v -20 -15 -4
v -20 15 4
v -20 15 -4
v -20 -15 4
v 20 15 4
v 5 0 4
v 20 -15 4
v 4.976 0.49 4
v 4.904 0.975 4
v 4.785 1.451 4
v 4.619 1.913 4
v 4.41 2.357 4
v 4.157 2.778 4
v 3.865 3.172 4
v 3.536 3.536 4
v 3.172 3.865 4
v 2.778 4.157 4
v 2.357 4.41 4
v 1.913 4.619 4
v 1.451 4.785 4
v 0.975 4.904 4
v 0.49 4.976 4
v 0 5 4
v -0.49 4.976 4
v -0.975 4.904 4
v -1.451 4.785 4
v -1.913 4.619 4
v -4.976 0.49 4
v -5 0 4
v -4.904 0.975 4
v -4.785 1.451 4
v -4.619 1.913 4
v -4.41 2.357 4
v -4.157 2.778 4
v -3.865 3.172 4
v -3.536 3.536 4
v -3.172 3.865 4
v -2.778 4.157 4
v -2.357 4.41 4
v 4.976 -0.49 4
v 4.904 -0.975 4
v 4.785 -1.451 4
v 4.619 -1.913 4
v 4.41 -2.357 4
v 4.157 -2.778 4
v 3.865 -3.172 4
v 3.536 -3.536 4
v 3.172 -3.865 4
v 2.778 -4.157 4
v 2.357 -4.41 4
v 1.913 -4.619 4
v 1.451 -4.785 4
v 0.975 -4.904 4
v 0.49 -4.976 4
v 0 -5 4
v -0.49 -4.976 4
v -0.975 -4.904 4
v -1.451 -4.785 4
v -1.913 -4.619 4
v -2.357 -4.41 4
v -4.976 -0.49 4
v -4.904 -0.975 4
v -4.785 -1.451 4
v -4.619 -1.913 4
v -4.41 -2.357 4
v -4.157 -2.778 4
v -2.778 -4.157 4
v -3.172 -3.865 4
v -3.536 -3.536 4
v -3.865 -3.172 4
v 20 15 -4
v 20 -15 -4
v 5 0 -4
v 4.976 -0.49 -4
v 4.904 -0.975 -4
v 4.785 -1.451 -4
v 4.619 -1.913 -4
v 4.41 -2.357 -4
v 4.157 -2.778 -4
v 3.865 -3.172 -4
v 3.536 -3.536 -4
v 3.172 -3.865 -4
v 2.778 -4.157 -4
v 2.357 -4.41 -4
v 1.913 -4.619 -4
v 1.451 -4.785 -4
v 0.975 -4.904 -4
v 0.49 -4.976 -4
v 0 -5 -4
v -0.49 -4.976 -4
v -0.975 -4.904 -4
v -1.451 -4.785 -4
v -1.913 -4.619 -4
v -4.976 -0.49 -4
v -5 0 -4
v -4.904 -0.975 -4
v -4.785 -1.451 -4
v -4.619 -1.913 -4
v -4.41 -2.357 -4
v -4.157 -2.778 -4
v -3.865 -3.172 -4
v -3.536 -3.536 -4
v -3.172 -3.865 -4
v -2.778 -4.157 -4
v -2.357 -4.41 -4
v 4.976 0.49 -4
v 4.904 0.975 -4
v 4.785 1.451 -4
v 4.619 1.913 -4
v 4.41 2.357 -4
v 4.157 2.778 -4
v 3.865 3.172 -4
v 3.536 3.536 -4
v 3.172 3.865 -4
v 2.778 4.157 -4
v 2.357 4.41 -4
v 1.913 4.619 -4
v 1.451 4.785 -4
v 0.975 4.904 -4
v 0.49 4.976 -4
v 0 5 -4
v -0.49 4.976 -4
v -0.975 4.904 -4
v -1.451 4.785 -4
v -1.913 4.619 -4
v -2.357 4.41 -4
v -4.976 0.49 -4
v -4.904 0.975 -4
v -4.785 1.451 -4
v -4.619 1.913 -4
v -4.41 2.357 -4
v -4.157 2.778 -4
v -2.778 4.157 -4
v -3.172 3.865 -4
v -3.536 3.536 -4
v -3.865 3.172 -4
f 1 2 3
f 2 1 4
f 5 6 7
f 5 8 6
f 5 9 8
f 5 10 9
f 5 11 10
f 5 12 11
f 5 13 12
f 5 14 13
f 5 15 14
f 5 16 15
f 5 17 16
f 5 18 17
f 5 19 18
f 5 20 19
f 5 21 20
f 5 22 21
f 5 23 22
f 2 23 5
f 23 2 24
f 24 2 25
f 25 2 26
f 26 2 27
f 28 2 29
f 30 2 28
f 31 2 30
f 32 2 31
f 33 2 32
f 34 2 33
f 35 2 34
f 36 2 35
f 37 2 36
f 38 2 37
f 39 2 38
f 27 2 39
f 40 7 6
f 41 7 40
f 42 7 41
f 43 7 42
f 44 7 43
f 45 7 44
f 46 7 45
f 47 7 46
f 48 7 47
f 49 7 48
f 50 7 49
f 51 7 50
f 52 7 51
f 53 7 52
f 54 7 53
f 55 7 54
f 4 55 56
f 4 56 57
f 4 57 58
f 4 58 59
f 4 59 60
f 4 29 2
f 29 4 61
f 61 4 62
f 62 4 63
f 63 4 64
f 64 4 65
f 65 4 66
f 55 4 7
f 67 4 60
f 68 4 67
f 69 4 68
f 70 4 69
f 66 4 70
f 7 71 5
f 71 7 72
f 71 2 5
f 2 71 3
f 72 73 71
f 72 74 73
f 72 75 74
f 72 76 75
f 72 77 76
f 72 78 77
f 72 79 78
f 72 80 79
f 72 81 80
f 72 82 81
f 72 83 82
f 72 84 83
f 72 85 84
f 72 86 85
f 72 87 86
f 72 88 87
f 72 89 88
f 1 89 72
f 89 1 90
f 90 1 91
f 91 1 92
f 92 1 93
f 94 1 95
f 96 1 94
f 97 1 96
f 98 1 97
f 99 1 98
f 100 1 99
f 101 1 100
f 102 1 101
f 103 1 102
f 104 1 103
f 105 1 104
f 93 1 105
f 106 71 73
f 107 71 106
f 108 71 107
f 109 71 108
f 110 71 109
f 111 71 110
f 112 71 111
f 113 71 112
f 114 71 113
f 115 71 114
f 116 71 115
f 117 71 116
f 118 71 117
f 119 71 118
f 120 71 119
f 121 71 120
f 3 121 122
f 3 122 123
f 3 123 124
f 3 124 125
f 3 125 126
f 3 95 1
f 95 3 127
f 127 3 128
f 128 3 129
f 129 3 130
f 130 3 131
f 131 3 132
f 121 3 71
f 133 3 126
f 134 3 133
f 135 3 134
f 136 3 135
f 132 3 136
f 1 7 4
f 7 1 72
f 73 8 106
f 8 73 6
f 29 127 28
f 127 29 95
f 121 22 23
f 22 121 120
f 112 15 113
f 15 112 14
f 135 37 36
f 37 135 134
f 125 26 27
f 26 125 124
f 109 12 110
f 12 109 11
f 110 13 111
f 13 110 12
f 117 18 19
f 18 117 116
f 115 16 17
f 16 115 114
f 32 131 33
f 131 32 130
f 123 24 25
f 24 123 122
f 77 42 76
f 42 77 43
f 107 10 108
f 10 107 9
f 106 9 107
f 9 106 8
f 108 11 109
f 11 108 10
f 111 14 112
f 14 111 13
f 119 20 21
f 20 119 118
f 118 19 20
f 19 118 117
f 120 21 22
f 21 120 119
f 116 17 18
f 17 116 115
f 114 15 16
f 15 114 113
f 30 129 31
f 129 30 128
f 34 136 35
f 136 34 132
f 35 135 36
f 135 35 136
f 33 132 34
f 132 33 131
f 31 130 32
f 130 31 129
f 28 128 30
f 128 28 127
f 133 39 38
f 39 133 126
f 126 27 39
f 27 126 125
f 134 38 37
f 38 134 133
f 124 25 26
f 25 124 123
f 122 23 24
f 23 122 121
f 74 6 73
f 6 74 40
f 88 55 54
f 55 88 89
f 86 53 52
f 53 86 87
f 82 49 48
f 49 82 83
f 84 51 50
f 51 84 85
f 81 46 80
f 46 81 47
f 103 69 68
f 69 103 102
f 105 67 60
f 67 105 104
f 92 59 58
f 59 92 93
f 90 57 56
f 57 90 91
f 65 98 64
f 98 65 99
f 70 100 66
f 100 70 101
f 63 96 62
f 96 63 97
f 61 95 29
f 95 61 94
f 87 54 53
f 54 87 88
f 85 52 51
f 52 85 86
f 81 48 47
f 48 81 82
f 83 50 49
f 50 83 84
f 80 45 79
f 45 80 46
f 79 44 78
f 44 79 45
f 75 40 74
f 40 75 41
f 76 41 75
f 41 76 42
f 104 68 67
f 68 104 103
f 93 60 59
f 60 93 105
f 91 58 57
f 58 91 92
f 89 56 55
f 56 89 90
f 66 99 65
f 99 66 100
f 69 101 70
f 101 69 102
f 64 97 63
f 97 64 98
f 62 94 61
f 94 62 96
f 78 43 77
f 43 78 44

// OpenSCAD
// Rectangular plate with centered hole
difference() {
    // Base rectangular plate
    cube([40, 30, 8], center = true);
    
    // Cylindrical hole along Z-axis
    cylinder(h = 12, d = 10, center = true, $fn = 64);
}
